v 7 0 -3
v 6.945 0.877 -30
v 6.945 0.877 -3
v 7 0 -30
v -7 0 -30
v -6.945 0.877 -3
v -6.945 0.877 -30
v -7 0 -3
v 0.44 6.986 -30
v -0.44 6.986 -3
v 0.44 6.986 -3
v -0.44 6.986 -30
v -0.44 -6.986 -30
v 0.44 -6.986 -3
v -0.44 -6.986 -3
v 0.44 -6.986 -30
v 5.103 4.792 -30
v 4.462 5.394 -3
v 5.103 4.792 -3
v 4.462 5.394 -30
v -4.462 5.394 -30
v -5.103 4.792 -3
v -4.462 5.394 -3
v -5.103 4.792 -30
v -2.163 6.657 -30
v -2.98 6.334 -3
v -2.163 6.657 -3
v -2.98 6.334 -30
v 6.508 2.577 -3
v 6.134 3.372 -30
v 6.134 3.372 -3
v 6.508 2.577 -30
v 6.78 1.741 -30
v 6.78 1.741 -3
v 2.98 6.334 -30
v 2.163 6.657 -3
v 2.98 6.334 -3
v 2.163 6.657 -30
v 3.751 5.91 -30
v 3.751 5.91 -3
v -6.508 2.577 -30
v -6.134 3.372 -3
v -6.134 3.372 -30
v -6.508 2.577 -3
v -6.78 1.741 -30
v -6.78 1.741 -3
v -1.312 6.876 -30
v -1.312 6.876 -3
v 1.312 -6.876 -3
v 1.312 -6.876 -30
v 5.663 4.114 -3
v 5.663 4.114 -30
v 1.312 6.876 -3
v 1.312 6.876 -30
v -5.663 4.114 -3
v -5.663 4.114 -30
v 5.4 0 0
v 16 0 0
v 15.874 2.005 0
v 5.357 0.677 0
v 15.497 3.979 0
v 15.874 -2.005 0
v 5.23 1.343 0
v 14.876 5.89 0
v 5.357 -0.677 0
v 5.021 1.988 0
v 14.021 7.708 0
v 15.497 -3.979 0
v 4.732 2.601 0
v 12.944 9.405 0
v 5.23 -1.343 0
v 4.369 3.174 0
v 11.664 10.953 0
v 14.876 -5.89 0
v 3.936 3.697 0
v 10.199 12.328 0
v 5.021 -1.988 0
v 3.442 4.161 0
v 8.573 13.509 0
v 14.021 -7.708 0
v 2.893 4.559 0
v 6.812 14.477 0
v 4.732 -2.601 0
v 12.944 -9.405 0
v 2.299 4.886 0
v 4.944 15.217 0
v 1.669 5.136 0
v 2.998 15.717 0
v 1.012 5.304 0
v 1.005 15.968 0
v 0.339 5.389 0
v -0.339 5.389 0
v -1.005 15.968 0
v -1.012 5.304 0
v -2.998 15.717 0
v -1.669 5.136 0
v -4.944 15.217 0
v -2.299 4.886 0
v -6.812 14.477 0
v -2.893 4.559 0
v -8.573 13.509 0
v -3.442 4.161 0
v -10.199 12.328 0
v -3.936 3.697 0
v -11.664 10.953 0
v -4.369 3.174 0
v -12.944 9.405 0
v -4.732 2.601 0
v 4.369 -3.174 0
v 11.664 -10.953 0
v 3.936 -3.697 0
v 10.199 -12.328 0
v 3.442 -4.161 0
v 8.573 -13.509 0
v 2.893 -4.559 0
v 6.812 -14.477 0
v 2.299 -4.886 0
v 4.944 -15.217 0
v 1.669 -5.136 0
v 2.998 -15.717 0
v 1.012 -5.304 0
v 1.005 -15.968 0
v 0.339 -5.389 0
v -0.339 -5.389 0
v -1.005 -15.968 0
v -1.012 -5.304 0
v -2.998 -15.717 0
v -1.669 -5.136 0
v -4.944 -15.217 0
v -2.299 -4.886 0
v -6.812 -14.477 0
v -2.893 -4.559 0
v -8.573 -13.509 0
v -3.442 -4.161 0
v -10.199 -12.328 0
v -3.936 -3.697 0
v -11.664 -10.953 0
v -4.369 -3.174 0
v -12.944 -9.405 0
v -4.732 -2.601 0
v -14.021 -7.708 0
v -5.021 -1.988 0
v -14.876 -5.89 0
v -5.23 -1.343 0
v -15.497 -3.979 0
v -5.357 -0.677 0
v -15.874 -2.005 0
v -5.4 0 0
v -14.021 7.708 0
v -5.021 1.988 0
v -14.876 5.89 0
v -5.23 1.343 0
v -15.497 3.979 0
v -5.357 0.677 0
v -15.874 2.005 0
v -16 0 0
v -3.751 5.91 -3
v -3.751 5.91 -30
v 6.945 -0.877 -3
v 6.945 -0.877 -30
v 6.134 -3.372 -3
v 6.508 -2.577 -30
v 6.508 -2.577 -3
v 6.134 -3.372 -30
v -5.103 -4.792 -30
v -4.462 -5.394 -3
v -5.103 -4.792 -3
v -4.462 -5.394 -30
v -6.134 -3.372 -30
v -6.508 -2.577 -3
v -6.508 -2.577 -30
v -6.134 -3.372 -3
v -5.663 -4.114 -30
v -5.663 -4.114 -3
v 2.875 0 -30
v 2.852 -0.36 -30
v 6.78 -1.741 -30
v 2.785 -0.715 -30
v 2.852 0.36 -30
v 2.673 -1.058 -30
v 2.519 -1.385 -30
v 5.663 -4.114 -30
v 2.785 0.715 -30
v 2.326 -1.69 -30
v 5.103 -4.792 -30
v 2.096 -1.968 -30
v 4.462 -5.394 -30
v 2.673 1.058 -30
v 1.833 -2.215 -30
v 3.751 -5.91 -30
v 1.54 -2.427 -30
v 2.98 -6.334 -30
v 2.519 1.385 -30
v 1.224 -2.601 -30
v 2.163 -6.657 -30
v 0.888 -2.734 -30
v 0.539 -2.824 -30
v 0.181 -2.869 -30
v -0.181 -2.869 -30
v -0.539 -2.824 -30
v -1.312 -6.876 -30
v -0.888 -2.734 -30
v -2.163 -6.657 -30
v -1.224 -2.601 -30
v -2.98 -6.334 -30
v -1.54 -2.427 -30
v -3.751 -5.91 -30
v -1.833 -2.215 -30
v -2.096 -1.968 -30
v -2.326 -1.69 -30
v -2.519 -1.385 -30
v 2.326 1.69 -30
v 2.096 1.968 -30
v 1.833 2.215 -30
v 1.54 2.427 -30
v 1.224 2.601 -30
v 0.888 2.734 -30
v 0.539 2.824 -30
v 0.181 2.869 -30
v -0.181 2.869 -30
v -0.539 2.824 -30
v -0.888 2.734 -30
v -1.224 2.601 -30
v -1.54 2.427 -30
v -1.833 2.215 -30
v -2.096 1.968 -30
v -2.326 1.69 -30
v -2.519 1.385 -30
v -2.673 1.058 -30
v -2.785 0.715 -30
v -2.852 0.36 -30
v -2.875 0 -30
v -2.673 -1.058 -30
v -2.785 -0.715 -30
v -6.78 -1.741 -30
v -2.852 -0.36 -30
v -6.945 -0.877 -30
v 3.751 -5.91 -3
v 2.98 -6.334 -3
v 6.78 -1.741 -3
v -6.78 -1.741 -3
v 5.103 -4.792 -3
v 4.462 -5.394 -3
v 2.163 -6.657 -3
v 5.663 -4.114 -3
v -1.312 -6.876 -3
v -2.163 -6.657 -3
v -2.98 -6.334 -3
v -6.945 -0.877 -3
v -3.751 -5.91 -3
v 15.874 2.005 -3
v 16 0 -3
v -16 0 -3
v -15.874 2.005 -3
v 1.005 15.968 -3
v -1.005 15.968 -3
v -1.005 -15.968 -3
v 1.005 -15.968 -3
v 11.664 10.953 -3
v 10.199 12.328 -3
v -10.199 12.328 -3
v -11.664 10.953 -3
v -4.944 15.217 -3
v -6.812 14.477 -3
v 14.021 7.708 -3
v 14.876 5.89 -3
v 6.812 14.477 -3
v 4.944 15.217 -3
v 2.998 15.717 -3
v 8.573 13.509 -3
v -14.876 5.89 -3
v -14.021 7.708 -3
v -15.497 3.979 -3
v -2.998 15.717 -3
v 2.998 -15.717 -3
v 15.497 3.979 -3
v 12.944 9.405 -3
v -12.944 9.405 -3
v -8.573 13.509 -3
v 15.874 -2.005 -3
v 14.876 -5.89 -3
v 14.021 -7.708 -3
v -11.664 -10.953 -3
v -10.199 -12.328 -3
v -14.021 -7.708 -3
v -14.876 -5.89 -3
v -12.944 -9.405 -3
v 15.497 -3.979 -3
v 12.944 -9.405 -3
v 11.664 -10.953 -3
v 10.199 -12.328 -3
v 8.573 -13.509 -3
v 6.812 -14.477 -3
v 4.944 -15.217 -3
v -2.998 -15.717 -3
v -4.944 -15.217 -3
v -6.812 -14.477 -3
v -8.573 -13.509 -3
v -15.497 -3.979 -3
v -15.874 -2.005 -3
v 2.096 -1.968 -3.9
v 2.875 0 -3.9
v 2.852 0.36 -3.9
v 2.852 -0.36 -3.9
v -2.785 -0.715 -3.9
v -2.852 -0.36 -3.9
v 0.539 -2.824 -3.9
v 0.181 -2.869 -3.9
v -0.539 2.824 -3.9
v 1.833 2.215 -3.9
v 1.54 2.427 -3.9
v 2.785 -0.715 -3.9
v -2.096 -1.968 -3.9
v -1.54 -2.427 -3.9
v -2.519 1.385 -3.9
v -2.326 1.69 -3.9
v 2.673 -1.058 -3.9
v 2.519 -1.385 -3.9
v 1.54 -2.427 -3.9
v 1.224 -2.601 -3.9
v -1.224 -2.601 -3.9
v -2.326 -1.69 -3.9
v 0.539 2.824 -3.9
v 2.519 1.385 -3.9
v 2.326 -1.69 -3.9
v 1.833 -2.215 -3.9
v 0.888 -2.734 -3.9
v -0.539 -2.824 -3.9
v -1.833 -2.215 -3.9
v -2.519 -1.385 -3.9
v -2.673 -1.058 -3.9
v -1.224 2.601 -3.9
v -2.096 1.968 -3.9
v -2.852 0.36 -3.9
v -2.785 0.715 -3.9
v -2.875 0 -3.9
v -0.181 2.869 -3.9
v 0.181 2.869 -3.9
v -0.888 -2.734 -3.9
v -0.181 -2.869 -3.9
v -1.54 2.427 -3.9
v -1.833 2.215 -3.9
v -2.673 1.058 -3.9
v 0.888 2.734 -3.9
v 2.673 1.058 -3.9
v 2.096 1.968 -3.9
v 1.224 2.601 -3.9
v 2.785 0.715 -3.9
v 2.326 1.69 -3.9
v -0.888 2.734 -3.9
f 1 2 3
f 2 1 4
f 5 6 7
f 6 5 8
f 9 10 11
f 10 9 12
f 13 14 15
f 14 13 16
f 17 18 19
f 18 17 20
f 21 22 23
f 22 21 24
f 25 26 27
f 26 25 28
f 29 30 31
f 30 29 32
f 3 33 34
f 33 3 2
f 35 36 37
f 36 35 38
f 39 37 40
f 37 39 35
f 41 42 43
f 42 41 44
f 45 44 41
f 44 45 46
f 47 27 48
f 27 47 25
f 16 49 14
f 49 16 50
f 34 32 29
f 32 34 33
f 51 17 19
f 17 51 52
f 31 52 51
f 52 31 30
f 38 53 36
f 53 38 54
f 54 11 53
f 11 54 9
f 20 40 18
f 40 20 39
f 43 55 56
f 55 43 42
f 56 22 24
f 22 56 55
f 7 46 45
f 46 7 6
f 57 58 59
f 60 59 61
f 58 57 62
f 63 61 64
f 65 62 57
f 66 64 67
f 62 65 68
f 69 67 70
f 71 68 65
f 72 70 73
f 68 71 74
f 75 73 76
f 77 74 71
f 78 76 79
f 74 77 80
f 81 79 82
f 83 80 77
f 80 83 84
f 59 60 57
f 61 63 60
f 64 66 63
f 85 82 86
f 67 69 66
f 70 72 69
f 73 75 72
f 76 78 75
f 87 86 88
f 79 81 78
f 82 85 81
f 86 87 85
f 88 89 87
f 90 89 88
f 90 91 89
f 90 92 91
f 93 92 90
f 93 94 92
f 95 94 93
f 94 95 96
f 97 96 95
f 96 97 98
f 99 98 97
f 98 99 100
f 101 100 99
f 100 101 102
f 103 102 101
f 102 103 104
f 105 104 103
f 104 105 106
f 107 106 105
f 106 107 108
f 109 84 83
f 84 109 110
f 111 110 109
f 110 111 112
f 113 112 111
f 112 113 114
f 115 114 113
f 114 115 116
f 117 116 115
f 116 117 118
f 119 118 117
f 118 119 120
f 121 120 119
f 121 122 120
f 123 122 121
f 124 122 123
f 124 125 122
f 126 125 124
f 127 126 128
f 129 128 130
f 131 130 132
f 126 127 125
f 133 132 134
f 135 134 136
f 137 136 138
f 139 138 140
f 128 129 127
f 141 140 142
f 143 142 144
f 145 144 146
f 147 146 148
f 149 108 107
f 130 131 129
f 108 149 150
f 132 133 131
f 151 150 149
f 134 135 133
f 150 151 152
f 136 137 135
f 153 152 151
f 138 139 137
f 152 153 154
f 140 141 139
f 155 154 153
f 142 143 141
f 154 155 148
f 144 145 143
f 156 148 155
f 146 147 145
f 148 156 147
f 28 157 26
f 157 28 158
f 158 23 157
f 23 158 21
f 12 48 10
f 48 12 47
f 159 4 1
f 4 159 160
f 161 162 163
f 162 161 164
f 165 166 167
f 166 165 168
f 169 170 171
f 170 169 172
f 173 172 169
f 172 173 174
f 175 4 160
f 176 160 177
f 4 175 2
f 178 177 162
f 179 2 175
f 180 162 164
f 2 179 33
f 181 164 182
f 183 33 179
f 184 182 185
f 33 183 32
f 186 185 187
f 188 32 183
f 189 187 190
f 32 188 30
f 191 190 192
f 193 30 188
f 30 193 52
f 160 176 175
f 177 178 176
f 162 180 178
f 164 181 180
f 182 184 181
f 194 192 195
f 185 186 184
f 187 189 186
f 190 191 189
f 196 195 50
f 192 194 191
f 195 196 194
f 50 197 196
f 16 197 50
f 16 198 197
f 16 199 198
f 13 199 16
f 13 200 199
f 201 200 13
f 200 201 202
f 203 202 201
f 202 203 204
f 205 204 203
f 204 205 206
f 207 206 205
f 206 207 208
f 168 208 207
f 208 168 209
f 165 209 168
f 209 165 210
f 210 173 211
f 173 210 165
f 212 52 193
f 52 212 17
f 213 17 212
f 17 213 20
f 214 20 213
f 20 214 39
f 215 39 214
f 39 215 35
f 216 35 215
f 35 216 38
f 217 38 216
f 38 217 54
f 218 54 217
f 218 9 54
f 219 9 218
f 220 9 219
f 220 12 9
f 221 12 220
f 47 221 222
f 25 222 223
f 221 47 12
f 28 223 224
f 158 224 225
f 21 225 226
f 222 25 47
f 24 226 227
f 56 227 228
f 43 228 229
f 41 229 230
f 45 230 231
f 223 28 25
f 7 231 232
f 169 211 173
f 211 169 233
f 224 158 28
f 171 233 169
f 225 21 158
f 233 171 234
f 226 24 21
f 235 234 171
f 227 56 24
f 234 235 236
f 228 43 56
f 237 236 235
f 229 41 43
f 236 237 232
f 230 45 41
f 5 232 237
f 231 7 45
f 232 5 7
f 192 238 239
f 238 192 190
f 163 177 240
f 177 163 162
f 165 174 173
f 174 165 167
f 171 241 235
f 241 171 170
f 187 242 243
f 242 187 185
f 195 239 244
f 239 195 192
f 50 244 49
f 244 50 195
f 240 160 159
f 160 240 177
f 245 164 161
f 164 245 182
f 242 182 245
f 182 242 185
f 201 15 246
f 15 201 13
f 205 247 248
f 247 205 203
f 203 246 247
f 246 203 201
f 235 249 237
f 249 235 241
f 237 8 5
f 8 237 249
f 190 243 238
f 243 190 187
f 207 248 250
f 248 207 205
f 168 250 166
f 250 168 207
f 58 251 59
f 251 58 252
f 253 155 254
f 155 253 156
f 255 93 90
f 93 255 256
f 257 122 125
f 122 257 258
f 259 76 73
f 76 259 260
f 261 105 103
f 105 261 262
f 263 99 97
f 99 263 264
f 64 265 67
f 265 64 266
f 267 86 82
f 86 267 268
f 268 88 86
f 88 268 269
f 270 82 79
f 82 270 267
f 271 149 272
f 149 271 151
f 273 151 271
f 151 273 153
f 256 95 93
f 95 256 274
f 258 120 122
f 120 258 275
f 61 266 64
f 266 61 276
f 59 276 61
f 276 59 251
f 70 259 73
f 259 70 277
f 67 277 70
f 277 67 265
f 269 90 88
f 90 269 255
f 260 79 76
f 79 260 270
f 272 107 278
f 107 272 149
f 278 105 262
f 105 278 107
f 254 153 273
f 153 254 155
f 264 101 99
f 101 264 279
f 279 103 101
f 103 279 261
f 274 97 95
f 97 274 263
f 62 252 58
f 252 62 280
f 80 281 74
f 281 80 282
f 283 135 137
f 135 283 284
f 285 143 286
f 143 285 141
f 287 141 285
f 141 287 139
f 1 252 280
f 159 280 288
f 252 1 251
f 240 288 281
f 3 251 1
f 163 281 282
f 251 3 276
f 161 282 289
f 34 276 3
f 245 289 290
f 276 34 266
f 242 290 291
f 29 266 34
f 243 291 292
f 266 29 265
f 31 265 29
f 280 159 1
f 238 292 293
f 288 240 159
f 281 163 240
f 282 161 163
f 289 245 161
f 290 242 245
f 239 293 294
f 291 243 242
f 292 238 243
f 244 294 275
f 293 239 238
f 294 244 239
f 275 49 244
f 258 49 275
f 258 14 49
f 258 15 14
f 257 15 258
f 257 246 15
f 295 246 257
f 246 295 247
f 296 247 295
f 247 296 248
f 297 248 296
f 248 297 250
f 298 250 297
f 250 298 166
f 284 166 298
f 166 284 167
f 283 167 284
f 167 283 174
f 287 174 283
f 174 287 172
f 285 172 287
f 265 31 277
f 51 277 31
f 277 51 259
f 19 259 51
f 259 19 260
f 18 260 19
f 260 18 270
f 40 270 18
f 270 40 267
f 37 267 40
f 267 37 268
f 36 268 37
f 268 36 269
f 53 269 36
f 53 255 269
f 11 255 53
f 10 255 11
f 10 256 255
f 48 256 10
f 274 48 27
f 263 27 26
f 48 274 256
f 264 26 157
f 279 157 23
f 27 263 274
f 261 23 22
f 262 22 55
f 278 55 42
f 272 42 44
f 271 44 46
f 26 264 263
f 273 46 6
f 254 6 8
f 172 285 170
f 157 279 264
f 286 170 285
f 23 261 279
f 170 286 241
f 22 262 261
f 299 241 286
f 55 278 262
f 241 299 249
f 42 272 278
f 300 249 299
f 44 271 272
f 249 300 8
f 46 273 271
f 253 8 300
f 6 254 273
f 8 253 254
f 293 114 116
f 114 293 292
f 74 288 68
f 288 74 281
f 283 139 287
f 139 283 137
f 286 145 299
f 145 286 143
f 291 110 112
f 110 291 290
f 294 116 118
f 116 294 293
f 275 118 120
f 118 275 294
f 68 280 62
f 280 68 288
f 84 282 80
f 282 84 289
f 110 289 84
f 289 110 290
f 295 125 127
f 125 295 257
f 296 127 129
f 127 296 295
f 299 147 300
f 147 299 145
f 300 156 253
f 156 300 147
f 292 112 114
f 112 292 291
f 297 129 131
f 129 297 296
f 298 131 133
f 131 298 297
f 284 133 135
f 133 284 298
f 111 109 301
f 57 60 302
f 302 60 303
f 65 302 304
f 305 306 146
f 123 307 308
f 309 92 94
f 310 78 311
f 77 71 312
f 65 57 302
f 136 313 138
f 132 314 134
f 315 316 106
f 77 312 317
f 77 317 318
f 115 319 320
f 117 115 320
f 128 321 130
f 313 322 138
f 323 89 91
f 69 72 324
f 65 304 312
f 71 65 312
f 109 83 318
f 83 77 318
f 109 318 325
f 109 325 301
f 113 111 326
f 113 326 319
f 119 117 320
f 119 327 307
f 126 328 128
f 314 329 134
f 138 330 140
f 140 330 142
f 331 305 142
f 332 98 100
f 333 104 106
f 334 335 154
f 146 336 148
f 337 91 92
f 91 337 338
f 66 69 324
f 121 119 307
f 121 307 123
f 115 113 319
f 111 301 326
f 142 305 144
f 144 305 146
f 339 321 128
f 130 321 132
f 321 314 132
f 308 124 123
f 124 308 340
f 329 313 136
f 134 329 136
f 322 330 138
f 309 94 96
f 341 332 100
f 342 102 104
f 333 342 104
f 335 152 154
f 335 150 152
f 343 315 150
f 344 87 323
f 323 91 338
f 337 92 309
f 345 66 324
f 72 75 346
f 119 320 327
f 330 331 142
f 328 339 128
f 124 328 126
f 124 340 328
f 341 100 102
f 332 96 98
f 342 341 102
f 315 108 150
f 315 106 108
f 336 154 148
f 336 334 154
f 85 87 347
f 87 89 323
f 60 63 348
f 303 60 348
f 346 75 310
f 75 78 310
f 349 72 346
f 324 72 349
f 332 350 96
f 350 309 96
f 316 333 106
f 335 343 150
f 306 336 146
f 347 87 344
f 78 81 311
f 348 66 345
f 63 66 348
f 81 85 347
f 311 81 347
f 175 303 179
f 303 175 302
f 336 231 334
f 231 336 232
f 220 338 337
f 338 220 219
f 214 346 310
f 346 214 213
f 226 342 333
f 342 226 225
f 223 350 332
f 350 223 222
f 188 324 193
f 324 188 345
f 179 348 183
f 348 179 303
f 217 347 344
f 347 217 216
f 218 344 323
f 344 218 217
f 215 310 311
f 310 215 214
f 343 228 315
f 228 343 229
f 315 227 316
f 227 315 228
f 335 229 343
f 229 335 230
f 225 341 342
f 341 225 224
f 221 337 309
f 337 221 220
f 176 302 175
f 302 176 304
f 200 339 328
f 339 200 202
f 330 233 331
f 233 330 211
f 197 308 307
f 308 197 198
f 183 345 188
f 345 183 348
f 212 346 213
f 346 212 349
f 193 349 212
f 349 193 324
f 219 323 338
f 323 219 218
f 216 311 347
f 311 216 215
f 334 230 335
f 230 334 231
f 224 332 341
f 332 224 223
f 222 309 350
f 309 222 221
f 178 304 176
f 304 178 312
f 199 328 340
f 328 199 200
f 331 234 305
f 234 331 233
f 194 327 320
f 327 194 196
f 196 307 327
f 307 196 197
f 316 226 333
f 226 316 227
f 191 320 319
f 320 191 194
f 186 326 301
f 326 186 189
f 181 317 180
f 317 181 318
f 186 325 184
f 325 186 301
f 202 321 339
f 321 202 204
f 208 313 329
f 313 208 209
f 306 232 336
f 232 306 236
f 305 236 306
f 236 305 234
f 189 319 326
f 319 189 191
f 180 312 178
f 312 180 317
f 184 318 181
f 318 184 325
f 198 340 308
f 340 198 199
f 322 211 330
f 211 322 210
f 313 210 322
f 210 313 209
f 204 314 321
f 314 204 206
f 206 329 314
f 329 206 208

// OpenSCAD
$fn = 50;


difference() {
	union() {
		translate(v = [0, 0, -30.0000000000]) {
			cylinder(h = 30, r = 7.0000000000);
		}
		translate(v = [0, 0, -3.0000000000]) {
			cylinder(h = 3, r = 16.0000000000);
		}
	}
	union() {
		translate(v = [0, 0, 0]) {
			rotate(a = [0, 0, 0]) {
				difference() {
					union() {
						#translate(v = [0, 0, -30.0000000000]) {
							cylinder(h = 30, r = 2.6000000000);
						}
						#translate(v = [0, 0, -3.9000000000]) {
							cylinder(h = 3.9000000000, r1 = 2.8750000000, r2 = 5.4000000000);
						}
						#translate(v = [0, 0, -30.0000000000]) {
							cylinder(h = 30, r = 2.8750000000);
						}
						#translate(v = [0, 0, -30.0000000000]) {
							cylinder(h = 30, r = 2.6000000000);
						}
					}
					union();
				}
			}
		}
	}
}
